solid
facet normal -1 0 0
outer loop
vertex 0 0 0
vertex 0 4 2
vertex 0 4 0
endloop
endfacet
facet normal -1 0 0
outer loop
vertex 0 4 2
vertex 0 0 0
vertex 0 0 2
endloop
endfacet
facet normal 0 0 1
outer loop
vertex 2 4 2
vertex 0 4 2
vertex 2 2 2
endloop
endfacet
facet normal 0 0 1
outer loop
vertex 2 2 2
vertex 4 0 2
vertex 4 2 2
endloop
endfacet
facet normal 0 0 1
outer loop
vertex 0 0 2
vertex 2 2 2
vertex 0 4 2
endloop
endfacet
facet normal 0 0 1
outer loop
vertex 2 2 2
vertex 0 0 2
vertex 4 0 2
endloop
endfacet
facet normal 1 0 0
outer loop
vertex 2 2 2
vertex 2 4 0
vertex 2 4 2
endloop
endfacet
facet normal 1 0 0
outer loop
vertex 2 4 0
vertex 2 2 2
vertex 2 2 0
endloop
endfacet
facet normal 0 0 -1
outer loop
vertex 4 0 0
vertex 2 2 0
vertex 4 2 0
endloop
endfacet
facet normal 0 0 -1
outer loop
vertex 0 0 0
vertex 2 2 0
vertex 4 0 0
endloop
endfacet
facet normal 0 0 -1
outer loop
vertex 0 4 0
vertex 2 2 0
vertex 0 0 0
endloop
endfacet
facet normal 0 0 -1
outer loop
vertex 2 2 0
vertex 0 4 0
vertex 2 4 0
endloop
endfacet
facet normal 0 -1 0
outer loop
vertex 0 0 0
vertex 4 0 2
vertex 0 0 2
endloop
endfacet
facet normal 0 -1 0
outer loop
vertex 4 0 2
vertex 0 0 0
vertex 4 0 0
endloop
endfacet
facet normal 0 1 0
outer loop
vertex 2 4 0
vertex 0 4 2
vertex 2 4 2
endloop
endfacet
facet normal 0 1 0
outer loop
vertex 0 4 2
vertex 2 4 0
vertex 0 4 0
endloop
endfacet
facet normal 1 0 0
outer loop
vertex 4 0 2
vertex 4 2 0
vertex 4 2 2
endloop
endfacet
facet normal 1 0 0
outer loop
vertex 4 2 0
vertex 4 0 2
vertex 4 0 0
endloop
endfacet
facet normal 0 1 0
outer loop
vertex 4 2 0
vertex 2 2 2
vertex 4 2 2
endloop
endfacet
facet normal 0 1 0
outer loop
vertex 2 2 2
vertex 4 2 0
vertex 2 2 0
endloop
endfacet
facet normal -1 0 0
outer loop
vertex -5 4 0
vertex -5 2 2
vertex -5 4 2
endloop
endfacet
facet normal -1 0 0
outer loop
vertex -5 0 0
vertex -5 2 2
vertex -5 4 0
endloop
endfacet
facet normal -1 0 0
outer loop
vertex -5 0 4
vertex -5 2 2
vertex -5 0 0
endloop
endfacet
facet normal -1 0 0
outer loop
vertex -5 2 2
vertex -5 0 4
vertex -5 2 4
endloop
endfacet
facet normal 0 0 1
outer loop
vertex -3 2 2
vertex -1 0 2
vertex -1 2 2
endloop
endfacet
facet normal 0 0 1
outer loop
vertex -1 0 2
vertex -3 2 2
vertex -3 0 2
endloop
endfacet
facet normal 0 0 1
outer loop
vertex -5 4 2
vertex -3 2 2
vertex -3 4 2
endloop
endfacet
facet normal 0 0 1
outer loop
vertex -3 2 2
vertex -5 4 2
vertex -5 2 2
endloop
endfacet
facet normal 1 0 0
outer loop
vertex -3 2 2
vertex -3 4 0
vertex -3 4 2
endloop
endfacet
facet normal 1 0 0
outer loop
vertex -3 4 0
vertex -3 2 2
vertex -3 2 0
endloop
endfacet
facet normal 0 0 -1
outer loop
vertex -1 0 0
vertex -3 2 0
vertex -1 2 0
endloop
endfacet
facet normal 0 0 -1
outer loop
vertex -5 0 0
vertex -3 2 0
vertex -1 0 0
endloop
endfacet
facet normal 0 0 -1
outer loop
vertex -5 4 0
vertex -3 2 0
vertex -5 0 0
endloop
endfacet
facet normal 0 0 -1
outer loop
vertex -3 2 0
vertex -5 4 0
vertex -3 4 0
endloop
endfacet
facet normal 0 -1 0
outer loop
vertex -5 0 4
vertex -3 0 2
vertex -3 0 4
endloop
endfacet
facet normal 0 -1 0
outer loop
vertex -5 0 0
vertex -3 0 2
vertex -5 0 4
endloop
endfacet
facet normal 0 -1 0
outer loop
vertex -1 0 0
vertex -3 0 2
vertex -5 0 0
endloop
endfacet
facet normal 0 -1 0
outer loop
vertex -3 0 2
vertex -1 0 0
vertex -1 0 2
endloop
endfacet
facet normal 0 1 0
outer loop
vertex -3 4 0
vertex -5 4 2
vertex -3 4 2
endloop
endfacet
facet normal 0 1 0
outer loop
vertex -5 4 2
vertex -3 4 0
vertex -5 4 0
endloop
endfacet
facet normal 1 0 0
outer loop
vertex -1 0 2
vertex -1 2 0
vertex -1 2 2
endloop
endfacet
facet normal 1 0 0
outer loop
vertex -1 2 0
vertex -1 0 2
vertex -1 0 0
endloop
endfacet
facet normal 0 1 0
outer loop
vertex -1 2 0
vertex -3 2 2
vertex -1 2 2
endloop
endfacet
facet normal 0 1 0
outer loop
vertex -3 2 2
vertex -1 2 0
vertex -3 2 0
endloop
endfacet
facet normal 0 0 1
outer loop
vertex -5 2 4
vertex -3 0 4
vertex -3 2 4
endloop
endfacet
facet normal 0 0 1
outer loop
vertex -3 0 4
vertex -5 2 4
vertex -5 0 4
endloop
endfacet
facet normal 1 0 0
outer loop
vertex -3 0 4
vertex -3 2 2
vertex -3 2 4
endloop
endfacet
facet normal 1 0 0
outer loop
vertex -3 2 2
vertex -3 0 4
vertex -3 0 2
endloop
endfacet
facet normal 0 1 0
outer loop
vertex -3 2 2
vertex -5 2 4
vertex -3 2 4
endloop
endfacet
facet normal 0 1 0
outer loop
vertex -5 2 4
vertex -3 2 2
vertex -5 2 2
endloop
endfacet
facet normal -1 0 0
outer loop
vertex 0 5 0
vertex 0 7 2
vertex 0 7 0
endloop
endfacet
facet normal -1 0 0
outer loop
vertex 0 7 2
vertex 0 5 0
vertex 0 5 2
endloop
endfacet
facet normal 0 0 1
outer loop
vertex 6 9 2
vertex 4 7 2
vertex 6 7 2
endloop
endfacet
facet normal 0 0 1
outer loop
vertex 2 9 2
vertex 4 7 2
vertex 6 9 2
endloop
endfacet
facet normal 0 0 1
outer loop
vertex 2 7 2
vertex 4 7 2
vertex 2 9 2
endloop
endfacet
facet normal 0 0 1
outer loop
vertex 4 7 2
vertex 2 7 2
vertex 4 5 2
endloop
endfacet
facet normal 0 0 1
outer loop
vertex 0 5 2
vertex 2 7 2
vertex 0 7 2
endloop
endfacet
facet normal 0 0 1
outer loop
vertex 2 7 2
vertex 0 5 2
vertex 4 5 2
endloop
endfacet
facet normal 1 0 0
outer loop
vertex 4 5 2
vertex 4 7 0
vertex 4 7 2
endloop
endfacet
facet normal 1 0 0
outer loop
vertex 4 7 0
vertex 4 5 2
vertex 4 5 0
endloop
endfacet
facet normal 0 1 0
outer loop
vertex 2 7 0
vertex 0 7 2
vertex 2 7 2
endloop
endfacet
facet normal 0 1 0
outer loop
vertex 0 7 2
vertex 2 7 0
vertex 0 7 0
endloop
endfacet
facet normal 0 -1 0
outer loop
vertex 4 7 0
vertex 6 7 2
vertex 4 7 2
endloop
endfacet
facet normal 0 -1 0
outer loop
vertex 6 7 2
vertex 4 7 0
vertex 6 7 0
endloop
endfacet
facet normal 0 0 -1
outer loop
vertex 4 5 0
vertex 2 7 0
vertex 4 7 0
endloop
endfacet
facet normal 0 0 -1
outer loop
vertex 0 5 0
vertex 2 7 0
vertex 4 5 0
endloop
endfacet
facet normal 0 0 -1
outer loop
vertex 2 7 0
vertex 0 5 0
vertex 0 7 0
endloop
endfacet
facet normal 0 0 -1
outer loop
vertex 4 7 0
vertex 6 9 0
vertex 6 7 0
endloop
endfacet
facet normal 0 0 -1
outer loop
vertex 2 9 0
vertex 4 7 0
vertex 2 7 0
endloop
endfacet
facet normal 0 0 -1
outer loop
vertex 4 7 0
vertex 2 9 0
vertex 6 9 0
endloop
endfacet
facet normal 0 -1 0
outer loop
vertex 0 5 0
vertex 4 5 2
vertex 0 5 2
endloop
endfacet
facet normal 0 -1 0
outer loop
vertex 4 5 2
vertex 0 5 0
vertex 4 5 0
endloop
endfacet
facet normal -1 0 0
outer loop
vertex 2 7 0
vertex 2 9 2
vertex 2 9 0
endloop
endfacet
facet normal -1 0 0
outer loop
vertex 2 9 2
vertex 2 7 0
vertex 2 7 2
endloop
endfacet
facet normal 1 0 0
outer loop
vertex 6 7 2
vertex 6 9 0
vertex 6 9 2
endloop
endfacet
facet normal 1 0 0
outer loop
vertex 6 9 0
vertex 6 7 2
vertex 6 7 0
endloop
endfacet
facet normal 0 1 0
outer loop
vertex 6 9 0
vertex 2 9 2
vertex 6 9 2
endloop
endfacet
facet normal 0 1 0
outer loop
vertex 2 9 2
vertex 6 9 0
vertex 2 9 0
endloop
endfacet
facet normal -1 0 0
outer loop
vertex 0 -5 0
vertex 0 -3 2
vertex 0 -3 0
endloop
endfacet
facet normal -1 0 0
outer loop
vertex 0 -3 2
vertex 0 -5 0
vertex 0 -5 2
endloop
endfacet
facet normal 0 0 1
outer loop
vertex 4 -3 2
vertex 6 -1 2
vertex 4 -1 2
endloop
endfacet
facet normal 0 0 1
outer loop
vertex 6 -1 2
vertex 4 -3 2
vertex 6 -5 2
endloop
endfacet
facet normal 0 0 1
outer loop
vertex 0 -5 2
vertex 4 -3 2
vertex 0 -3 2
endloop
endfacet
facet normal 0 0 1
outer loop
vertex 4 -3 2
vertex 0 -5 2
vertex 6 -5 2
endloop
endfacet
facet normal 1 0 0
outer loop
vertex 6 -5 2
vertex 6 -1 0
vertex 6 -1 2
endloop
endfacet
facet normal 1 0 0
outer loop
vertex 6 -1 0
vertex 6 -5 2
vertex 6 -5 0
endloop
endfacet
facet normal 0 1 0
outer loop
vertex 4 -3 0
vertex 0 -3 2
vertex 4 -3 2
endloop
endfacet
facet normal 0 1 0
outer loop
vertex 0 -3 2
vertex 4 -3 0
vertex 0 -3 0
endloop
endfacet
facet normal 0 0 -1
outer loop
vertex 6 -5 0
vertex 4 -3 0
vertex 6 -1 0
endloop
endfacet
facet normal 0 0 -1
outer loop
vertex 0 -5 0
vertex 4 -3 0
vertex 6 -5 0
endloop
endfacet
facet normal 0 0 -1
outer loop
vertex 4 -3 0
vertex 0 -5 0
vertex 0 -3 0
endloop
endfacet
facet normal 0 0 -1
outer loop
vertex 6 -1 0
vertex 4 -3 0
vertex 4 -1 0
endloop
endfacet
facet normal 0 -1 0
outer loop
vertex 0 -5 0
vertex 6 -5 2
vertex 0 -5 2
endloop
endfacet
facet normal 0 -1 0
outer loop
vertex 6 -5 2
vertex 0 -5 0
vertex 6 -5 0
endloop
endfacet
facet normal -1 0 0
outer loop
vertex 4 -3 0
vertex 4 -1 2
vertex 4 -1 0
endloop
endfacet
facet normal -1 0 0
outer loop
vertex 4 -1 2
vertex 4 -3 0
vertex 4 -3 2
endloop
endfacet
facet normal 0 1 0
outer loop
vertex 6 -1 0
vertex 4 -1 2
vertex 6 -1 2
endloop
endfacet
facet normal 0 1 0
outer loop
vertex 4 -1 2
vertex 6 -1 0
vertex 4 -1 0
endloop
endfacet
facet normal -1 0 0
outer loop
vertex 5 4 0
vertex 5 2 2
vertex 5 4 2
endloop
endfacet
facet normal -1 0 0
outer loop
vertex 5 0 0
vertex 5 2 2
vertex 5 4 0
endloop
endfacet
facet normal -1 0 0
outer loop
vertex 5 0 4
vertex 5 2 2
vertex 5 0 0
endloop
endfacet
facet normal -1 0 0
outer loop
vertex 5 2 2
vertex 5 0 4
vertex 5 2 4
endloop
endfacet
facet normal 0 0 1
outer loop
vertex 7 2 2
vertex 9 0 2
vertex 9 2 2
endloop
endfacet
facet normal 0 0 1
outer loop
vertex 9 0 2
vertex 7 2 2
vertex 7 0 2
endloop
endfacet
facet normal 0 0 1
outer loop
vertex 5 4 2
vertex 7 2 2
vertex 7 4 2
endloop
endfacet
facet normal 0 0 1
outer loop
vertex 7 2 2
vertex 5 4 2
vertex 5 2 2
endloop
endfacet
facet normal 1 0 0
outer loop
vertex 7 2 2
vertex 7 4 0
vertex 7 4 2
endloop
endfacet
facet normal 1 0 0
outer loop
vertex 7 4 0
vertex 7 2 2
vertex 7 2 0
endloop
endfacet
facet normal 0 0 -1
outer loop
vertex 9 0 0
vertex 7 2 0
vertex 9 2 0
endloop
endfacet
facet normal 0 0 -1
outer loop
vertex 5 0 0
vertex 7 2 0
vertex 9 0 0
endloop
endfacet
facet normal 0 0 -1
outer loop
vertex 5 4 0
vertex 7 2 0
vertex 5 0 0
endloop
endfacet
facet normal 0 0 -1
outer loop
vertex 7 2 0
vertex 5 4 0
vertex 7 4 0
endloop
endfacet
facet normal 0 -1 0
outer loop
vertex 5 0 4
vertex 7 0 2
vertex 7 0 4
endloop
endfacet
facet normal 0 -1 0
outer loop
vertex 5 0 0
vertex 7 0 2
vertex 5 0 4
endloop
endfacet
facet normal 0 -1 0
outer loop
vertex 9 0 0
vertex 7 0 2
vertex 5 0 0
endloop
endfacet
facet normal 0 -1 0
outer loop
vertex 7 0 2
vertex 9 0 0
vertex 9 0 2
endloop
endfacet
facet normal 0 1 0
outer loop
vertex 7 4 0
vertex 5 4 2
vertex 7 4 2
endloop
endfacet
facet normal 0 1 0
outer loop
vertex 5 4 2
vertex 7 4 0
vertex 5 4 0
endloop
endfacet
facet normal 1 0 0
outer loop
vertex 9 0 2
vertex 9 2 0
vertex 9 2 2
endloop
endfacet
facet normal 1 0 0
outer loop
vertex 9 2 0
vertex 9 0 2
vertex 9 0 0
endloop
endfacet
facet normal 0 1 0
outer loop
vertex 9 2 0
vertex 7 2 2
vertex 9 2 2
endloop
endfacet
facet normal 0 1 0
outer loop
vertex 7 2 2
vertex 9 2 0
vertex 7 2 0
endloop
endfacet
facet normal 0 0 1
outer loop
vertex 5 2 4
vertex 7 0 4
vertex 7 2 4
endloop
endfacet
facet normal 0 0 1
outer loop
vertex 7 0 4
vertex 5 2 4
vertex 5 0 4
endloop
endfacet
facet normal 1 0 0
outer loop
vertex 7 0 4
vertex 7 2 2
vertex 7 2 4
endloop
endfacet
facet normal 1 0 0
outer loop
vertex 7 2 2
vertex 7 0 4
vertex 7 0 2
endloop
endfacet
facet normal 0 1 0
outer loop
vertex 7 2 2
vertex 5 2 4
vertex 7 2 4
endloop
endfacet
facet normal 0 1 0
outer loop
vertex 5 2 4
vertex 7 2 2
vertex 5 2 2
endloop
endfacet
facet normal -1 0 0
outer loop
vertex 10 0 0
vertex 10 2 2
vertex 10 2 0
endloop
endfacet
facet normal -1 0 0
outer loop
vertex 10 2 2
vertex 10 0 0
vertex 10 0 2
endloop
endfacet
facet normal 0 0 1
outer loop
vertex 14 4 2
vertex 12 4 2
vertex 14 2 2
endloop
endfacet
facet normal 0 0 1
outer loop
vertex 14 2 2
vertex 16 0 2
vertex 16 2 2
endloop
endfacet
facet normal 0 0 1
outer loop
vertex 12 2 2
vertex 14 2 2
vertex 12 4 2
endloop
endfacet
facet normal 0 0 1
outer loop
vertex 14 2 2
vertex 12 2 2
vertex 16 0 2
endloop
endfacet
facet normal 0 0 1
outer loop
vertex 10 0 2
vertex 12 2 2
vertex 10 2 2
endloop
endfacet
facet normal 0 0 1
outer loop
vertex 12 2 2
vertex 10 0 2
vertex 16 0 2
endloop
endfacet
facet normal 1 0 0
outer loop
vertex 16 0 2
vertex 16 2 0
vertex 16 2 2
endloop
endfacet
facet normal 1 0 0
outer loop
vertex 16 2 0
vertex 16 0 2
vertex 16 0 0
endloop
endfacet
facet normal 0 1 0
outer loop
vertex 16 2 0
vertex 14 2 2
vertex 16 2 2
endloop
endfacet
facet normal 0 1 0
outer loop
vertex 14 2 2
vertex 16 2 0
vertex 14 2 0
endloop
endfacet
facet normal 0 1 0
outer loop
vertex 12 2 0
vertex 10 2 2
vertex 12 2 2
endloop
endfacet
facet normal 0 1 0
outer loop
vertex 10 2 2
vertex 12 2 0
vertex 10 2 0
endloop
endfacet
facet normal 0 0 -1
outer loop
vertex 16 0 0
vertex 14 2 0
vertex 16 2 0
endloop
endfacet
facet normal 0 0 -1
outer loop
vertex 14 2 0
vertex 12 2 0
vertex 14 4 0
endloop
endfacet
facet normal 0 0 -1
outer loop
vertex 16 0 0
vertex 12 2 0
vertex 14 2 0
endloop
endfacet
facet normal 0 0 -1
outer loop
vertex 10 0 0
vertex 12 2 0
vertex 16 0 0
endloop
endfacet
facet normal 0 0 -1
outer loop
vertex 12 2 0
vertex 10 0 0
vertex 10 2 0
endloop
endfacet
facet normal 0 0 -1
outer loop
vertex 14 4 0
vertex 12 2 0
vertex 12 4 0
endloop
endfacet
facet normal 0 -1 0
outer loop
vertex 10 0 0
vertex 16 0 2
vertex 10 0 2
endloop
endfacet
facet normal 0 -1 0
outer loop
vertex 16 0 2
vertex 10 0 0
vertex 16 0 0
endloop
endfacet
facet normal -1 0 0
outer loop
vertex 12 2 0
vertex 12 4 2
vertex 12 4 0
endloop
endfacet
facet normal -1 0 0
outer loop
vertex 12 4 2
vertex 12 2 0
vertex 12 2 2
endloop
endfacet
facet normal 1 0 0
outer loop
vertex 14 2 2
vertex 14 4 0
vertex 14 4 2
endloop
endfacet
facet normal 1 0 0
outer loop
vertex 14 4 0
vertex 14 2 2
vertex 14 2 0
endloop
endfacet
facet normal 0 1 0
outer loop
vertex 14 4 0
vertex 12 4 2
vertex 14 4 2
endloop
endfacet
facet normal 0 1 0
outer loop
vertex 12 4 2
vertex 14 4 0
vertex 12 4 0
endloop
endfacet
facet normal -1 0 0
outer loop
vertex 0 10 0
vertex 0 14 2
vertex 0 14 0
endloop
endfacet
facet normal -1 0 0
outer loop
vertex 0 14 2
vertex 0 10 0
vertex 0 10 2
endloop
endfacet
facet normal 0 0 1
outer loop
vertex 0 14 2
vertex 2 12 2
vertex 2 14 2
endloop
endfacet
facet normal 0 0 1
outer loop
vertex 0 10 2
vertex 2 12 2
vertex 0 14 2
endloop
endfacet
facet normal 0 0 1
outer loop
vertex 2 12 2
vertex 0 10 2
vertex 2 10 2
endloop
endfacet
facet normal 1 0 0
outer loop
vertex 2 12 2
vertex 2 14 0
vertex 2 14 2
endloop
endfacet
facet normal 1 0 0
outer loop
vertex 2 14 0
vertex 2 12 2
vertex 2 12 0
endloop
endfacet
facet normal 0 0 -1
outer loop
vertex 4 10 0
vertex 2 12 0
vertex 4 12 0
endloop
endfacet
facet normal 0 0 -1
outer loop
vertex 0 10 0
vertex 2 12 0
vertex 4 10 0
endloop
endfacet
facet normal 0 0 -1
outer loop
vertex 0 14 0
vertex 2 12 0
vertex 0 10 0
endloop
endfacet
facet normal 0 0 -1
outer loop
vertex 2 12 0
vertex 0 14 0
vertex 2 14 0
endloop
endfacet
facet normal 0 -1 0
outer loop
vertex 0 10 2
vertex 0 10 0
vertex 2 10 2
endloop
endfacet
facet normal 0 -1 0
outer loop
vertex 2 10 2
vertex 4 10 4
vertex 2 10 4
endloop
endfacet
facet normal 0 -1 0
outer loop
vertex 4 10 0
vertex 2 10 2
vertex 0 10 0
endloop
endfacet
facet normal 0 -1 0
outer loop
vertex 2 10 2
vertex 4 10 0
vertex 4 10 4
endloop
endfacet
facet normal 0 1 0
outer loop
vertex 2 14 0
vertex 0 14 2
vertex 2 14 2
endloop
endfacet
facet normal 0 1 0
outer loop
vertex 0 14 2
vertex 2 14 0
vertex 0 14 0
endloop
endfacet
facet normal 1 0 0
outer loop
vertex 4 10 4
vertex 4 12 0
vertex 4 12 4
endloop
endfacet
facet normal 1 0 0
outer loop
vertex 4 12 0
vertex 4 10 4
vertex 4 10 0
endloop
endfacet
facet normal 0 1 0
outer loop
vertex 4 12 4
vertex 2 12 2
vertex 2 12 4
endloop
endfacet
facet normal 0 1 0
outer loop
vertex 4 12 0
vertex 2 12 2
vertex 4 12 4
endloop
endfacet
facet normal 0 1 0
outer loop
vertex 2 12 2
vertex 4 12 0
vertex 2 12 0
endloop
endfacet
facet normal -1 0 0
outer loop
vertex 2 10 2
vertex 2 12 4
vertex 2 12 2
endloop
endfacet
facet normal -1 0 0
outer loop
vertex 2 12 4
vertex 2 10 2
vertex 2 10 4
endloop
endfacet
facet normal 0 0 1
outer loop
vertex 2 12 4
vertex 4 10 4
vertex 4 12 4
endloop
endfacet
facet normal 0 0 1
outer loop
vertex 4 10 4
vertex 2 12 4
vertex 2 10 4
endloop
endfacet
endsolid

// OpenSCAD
module L() {
    union() {
        cube([6,2,2]);
        translate([4,2,0])
            cube([2,2,2]);
    }
}       


module S() {
    union() {
        cube([4,2,2]);
        translate([2,2,0])
            cube([4,2,2]);
    }
}

module l() {
    union() {
        cube([2,4,2]);
        translate([2,0,0])
            cube([2,2,2]);
    }
}
module hex() {
    union() {
        l();
        translate([0,0,2])
            cube([2,2,2]);
    }
}

module t() {
    union() { 
        cube([6,2,2]);
        translate([2,2,0])
            cube([2,2,2]);
    }
}

module hex2() {
    union() {
        l();
        translate([2,0,2])
            cube([2,2,2]);
    }
}
    
l();
translate([-5,0,0])
    hex();
translate([0,5,0])
    S();
translate([0,-5,0])
    L();
translate([5,0,0])
    hex();
translate([10,0,0])
    t();
translate([0,10,0])
    hex2();
